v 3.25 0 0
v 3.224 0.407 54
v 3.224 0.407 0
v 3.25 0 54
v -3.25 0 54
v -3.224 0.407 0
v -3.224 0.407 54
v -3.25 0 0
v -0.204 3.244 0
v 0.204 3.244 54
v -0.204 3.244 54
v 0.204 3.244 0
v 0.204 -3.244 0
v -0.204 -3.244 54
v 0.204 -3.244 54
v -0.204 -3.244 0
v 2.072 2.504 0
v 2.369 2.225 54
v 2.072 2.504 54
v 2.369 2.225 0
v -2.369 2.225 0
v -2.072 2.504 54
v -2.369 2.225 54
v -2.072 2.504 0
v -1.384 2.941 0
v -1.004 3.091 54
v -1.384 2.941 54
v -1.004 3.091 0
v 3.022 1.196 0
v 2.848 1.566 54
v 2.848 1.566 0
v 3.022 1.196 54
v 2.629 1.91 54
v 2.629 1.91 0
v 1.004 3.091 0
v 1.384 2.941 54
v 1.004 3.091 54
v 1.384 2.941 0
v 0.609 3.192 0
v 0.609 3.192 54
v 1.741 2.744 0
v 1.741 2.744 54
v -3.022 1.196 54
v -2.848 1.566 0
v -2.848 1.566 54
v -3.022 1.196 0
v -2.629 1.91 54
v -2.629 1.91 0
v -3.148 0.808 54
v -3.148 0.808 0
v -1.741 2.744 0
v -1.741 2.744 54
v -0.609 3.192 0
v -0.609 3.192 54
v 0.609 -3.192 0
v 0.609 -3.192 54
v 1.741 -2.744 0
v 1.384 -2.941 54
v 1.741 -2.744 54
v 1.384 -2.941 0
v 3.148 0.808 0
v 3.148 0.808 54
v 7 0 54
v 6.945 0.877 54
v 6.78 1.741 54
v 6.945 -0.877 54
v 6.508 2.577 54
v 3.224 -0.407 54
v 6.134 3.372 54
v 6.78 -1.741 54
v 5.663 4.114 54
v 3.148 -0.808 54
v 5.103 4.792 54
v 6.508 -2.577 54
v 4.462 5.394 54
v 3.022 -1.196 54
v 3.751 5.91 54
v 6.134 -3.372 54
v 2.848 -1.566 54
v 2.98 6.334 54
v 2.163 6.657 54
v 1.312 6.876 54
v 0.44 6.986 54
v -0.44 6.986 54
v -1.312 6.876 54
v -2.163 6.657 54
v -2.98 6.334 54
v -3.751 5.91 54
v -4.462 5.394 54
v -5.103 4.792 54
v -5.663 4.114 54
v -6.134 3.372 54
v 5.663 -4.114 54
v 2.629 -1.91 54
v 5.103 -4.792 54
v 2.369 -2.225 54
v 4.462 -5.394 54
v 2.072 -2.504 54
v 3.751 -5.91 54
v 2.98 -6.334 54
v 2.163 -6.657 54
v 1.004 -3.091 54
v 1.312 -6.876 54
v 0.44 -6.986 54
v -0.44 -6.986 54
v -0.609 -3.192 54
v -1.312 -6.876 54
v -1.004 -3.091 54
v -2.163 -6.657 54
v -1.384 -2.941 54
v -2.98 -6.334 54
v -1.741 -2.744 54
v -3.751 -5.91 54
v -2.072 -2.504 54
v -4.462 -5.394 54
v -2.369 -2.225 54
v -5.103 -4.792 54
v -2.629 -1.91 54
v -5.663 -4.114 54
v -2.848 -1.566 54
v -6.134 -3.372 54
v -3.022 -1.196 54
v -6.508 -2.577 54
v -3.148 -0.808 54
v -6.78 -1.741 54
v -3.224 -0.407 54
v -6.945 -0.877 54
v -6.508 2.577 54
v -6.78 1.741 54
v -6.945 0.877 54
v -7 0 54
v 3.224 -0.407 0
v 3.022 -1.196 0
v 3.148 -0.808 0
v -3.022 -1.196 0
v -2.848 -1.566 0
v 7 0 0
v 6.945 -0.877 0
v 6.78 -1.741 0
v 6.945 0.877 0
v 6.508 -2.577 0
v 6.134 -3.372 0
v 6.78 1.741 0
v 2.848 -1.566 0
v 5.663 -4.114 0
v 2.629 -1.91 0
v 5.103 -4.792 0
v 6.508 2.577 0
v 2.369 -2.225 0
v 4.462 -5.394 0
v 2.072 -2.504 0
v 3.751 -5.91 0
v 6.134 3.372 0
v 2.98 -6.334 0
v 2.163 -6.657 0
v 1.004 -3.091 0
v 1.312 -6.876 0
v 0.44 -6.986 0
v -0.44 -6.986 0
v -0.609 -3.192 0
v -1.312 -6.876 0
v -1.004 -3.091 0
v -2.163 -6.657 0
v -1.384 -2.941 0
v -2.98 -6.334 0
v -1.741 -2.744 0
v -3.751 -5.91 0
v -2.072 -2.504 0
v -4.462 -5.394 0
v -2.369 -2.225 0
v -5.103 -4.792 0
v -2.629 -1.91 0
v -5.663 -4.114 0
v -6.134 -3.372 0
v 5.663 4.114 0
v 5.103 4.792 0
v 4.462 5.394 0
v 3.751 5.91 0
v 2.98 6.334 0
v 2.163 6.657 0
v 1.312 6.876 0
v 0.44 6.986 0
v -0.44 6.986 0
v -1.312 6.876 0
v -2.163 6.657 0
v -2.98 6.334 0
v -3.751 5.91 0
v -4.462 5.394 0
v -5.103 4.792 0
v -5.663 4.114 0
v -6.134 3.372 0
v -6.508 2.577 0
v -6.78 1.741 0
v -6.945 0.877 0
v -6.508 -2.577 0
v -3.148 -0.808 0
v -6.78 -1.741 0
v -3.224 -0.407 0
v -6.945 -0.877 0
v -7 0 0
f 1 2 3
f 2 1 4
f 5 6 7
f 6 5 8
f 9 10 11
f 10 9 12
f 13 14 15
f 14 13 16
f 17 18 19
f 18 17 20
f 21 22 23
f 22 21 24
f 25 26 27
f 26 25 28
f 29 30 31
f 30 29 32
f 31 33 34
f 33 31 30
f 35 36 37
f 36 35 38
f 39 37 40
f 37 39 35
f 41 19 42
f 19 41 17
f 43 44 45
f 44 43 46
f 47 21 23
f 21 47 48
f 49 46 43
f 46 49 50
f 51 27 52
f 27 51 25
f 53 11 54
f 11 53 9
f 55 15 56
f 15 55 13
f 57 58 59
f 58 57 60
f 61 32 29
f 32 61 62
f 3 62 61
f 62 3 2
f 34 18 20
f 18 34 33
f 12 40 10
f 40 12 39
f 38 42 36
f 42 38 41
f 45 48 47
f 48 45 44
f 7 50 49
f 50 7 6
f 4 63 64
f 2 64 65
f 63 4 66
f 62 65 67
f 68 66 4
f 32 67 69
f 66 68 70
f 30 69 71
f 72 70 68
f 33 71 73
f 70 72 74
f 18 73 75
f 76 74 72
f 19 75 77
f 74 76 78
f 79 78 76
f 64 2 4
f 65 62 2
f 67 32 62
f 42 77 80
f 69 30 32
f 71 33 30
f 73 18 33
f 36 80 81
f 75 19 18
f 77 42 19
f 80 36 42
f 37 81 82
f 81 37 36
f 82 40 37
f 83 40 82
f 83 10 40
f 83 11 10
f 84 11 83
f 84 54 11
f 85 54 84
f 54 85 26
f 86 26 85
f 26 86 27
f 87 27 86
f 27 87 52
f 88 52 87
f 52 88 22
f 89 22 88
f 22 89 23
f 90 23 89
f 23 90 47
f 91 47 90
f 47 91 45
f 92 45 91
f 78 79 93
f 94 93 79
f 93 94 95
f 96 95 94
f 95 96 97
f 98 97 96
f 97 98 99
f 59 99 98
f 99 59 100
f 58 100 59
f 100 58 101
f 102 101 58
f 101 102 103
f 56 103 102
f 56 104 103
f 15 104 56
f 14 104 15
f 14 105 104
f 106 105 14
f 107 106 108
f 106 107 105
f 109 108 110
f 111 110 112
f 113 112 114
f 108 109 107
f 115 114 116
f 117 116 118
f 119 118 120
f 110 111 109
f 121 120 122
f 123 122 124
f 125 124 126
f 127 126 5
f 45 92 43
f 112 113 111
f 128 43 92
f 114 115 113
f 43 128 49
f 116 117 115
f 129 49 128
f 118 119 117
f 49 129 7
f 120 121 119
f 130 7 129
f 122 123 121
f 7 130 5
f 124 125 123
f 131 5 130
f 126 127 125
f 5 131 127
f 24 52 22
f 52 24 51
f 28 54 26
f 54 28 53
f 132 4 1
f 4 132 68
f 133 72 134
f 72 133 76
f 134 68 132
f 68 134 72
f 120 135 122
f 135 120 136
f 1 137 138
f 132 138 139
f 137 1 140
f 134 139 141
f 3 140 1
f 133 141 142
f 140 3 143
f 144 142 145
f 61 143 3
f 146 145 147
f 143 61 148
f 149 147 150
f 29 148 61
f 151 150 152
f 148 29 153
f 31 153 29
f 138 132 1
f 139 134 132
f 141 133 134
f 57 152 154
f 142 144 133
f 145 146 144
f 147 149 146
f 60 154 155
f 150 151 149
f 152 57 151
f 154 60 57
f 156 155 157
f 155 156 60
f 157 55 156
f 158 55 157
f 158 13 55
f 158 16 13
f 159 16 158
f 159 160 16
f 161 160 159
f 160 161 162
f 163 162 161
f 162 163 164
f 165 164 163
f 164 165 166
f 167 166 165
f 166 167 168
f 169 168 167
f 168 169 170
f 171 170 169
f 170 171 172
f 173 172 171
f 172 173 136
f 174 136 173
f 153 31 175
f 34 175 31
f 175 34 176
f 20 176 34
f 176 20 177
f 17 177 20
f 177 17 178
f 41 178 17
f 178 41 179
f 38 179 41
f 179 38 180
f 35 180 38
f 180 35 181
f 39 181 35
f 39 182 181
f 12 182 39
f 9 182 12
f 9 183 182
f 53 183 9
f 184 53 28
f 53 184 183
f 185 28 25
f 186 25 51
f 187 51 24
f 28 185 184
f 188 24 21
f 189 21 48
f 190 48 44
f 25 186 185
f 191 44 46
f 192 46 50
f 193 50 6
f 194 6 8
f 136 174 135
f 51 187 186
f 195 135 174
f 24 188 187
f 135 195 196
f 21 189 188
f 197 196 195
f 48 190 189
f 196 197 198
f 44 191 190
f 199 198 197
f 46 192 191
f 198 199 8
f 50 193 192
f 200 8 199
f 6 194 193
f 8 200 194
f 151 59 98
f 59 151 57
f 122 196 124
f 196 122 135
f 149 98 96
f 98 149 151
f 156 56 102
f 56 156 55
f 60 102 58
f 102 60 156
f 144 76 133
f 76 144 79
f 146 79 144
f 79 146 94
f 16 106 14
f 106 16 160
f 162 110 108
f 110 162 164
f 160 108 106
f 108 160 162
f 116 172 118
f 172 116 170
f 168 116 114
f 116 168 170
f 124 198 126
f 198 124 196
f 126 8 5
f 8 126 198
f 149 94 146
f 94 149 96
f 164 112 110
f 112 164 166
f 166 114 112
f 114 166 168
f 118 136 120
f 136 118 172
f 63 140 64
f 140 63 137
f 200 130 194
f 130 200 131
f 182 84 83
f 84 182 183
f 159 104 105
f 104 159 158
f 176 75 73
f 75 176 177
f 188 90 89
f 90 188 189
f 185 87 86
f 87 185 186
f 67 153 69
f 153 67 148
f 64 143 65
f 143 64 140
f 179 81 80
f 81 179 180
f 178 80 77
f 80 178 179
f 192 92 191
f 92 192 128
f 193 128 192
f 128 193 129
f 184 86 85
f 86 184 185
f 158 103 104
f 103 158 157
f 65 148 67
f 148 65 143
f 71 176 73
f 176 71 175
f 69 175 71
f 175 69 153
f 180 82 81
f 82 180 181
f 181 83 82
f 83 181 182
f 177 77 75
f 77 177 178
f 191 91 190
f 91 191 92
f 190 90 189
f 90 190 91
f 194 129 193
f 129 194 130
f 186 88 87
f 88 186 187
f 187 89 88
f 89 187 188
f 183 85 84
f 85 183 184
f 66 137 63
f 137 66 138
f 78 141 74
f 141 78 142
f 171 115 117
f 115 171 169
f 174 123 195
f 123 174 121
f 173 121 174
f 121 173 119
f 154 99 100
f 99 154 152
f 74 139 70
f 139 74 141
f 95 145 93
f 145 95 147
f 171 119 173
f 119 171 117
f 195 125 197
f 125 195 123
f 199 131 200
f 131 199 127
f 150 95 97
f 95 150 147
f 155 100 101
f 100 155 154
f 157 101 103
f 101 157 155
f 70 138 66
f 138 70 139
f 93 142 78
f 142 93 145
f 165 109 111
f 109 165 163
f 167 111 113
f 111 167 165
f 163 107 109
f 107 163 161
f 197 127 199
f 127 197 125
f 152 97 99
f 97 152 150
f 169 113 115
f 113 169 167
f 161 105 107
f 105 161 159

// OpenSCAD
$fn = 50;


difference() {
	union() {
		cylinder(h = 54, r = 7.0000000000);
	}
	union() {
		cylinder(h = 54, r = 3.2500000000);
		cylinder(h = 54, r = 3.2500000000);
		cylinder(h = 54, r = 1.8000000000);
		cylinder(h = 54, r = 1.8000000000);
		cylinder(h = 54, r = 1.8000000000);
		cylinder(h = 54, r = 1.8000000000);
		cylinder(h = 54, r = 1.8000000000);
		cylinder(h = 54, r = 1.8000000000);
	}
}
